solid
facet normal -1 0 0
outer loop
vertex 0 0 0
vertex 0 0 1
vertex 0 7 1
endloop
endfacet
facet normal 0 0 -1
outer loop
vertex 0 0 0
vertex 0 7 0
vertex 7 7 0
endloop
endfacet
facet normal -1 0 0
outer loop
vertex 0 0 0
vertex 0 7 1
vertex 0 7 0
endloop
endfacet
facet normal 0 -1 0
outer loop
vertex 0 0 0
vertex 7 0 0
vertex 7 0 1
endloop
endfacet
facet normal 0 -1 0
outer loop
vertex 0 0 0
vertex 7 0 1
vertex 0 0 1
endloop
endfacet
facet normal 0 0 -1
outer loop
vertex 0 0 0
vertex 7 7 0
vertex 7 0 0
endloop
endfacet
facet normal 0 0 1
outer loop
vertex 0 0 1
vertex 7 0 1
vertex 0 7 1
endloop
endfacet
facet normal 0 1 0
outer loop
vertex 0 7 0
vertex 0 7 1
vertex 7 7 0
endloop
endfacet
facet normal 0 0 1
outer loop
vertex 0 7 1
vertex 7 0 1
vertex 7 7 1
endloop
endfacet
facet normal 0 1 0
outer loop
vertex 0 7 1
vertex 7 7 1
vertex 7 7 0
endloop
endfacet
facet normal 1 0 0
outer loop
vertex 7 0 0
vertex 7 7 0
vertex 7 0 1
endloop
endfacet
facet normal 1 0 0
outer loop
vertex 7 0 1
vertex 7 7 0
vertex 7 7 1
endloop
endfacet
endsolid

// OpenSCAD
/* Warning, this is a very basic generator with a lot of approximation 
input data : [VFBGA, 4GX, 7x7x1mm, 64, , A, C04-00370A]
generated by com.zoubworld.electronics.cad.model3d.Basic
Date : Sun Feb 15 10:50:48 CET 2026
*/

//body
color("black")
translate([0,0,0])
cube([7.0,7.0,1.0], center=false);
